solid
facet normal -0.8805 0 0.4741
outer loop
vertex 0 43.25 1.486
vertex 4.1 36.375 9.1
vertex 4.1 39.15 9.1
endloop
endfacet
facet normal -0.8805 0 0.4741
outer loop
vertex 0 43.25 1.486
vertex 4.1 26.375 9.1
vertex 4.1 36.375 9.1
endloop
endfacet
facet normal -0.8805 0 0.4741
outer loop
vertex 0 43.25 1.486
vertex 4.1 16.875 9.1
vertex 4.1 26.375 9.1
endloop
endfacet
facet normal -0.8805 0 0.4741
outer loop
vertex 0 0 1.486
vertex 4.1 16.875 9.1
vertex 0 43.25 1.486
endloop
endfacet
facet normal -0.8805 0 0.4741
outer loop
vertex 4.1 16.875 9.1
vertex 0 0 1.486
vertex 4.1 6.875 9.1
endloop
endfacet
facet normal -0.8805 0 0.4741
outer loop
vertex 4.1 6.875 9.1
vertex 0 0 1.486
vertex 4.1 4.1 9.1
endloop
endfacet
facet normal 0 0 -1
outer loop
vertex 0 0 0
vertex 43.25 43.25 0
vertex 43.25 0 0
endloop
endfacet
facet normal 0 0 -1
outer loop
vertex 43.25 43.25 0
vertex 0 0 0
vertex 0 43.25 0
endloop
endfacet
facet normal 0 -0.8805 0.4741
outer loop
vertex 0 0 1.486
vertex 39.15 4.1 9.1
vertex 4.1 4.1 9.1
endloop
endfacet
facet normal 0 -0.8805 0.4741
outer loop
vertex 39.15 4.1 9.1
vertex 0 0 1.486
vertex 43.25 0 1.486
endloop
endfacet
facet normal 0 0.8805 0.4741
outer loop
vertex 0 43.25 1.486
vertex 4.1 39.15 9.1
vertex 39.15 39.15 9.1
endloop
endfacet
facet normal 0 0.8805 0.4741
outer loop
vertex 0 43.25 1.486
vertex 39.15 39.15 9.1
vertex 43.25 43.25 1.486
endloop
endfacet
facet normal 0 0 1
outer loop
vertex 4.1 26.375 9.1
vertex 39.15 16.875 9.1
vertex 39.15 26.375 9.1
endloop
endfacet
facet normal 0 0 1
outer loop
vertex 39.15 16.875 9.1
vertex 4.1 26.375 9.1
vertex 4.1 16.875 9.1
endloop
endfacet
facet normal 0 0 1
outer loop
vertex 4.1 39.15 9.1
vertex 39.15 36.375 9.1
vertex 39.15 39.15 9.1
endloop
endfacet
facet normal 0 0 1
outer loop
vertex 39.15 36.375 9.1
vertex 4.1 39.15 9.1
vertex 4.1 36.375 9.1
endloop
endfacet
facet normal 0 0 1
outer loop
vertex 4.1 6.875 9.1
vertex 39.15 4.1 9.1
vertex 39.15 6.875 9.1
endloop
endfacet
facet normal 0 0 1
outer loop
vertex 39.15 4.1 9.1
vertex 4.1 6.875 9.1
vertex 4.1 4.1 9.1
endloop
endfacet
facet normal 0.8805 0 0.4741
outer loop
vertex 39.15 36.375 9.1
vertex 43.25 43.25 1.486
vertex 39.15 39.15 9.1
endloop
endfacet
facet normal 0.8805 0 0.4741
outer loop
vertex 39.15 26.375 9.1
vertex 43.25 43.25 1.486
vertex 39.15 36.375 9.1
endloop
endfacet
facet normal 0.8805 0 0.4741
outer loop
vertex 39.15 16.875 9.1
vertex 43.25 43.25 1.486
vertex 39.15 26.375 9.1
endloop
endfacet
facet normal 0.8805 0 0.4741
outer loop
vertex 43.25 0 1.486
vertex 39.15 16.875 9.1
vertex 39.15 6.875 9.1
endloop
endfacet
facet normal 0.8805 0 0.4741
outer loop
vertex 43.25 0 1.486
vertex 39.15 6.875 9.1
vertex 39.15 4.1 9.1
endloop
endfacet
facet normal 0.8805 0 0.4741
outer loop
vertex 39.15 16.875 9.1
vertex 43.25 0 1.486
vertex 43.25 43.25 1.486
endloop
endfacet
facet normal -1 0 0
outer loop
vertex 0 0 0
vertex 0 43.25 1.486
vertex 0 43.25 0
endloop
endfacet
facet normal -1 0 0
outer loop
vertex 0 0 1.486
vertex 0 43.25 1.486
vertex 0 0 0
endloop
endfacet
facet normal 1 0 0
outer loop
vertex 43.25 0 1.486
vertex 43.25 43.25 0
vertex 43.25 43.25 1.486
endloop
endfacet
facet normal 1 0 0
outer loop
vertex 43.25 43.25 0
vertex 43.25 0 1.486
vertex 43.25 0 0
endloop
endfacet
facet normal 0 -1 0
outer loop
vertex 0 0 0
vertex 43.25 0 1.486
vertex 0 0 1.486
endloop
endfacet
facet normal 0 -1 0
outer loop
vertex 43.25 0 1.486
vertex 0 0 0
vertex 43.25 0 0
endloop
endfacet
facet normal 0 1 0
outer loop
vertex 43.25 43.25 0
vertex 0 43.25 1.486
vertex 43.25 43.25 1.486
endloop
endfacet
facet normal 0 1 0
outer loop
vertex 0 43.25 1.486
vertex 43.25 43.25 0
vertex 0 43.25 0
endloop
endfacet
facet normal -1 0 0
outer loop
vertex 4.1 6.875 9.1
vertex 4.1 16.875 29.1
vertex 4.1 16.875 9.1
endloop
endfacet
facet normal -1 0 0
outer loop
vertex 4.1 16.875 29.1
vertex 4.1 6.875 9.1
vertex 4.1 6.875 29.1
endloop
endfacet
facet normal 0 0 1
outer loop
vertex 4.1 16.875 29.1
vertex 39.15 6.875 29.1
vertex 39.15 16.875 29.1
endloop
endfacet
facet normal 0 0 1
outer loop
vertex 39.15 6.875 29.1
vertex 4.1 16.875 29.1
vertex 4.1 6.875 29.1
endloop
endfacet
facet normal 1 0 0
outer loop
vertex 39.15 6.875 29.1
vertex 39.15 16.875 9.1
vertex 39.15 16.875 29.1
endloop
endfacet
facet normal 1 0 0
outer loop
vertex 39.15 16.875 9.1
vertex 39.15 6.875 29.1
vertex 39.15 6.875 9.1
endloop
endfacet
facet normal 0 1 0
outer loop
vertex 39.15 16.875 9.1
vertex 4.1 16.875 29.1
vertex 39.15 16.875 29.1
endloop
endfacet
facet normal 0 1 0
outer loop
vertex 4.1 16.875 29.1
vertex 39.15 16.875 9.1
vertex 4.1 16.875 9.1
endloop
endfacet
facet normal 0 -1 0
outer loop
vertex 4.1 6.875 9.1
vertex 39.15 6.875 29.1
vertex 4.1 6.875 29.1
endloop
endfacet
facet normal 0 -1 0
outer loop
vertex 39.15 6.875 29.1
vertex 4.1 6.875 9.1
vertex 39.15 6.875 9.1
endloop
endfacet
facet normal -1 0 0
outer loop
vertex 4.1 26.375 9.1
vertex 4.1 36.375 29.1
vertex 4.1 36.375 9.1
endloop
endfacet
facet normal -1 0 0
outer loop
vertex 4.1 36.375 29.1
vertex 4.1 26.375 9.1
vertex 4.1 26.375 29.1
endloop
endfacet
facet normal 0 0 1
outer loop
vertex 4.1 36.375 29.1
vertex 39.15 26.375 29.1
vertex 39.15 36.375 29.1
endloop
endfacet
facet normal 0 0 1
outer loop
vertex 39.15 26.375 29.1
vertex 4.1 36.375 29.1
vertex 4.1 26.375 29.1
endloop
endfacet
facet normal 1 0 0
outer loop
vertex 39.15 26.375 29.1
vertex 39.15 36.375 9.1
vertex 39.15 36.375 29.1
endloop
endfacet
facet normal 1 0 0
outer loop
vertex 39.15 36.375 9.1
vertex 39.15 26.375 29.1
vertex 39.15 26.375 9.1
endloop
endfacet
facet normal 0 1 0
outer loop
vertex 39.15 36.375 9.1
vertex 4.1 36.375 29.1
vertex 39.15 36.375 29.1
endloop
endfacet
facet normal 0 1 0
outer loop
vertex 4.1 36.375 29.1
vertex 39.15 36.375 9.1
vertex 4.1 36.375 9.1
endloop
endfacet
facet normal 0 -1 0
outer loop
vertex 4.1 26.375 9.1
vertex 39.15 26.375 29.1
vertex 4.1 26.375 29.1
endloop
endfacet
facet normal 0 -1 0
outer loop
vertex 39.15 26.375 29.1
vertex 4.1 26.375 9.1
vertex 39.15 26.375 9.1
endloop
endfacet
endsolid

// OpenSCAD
// Phone width in mm (iPhone4/S=9.3, iPhone5=7.6, iPhone6=7.05)
phone_width=9.5;

// Width of the base of your tripod mount
base_width=43.25;

// Height of the slanted area of your tripod mount
base_height=9.1;

// Difference in width between the base and top of the mount
base_inset=4.1;

// Difference in width between the base bottom width and width if it hadn't been chopped off
base_cutout = 0.8;

// Width of the holder bars
holder_width=10;

// Height of the holder bars
holder_height=20;

base_width_2 = base_width + base_cutout;

phone_width_2 = phone_width + 0.05; // add a tiny bit of extra so phone can slide in

union() {

// base
intersection() {
    //slanted cube
	polyhedron(points=[[-base_cutout,-base_cutout,0],
                   [base_inset,base_inset,base_height],
                   [-base_cutout,base_width+base_cutout,0],
                   [base_inset,base_width-base_inset,base_height],
                   [base_width+base_cutout,base_width+base_cutout,0],
                   [base_width-base_inset,base_width-base_inset,base_height],
                   [base_width+base_cutout,-base_cutout,0],
                   [base_width-base_inset,base_inset,base_height]],
           triangles=[[2,1,0],[1,2,3],[4,3,2],[3,4,5],[6,5,4],[5,6,7],[0,7,6],[7,0,1],
				     [4,2,0],[0,6,4],[1,3,5],[5,7,1]]
           );
	
	//whatever the bigger shape, clip it to base_width
	cube([base_width,base_width,50]);
}

// phone holder
translate([base_inset,base_width-base_width/2-holder_width-phone_width/2,base_height]) 
	cube([base_width-base_inset*2,holder_width,holder_height]);
translate([base_inset,base_width-base_width/2+phone_width/2,base_height])
	cube([base_width-base_inset*2,holder_width,holder_height]);

}
